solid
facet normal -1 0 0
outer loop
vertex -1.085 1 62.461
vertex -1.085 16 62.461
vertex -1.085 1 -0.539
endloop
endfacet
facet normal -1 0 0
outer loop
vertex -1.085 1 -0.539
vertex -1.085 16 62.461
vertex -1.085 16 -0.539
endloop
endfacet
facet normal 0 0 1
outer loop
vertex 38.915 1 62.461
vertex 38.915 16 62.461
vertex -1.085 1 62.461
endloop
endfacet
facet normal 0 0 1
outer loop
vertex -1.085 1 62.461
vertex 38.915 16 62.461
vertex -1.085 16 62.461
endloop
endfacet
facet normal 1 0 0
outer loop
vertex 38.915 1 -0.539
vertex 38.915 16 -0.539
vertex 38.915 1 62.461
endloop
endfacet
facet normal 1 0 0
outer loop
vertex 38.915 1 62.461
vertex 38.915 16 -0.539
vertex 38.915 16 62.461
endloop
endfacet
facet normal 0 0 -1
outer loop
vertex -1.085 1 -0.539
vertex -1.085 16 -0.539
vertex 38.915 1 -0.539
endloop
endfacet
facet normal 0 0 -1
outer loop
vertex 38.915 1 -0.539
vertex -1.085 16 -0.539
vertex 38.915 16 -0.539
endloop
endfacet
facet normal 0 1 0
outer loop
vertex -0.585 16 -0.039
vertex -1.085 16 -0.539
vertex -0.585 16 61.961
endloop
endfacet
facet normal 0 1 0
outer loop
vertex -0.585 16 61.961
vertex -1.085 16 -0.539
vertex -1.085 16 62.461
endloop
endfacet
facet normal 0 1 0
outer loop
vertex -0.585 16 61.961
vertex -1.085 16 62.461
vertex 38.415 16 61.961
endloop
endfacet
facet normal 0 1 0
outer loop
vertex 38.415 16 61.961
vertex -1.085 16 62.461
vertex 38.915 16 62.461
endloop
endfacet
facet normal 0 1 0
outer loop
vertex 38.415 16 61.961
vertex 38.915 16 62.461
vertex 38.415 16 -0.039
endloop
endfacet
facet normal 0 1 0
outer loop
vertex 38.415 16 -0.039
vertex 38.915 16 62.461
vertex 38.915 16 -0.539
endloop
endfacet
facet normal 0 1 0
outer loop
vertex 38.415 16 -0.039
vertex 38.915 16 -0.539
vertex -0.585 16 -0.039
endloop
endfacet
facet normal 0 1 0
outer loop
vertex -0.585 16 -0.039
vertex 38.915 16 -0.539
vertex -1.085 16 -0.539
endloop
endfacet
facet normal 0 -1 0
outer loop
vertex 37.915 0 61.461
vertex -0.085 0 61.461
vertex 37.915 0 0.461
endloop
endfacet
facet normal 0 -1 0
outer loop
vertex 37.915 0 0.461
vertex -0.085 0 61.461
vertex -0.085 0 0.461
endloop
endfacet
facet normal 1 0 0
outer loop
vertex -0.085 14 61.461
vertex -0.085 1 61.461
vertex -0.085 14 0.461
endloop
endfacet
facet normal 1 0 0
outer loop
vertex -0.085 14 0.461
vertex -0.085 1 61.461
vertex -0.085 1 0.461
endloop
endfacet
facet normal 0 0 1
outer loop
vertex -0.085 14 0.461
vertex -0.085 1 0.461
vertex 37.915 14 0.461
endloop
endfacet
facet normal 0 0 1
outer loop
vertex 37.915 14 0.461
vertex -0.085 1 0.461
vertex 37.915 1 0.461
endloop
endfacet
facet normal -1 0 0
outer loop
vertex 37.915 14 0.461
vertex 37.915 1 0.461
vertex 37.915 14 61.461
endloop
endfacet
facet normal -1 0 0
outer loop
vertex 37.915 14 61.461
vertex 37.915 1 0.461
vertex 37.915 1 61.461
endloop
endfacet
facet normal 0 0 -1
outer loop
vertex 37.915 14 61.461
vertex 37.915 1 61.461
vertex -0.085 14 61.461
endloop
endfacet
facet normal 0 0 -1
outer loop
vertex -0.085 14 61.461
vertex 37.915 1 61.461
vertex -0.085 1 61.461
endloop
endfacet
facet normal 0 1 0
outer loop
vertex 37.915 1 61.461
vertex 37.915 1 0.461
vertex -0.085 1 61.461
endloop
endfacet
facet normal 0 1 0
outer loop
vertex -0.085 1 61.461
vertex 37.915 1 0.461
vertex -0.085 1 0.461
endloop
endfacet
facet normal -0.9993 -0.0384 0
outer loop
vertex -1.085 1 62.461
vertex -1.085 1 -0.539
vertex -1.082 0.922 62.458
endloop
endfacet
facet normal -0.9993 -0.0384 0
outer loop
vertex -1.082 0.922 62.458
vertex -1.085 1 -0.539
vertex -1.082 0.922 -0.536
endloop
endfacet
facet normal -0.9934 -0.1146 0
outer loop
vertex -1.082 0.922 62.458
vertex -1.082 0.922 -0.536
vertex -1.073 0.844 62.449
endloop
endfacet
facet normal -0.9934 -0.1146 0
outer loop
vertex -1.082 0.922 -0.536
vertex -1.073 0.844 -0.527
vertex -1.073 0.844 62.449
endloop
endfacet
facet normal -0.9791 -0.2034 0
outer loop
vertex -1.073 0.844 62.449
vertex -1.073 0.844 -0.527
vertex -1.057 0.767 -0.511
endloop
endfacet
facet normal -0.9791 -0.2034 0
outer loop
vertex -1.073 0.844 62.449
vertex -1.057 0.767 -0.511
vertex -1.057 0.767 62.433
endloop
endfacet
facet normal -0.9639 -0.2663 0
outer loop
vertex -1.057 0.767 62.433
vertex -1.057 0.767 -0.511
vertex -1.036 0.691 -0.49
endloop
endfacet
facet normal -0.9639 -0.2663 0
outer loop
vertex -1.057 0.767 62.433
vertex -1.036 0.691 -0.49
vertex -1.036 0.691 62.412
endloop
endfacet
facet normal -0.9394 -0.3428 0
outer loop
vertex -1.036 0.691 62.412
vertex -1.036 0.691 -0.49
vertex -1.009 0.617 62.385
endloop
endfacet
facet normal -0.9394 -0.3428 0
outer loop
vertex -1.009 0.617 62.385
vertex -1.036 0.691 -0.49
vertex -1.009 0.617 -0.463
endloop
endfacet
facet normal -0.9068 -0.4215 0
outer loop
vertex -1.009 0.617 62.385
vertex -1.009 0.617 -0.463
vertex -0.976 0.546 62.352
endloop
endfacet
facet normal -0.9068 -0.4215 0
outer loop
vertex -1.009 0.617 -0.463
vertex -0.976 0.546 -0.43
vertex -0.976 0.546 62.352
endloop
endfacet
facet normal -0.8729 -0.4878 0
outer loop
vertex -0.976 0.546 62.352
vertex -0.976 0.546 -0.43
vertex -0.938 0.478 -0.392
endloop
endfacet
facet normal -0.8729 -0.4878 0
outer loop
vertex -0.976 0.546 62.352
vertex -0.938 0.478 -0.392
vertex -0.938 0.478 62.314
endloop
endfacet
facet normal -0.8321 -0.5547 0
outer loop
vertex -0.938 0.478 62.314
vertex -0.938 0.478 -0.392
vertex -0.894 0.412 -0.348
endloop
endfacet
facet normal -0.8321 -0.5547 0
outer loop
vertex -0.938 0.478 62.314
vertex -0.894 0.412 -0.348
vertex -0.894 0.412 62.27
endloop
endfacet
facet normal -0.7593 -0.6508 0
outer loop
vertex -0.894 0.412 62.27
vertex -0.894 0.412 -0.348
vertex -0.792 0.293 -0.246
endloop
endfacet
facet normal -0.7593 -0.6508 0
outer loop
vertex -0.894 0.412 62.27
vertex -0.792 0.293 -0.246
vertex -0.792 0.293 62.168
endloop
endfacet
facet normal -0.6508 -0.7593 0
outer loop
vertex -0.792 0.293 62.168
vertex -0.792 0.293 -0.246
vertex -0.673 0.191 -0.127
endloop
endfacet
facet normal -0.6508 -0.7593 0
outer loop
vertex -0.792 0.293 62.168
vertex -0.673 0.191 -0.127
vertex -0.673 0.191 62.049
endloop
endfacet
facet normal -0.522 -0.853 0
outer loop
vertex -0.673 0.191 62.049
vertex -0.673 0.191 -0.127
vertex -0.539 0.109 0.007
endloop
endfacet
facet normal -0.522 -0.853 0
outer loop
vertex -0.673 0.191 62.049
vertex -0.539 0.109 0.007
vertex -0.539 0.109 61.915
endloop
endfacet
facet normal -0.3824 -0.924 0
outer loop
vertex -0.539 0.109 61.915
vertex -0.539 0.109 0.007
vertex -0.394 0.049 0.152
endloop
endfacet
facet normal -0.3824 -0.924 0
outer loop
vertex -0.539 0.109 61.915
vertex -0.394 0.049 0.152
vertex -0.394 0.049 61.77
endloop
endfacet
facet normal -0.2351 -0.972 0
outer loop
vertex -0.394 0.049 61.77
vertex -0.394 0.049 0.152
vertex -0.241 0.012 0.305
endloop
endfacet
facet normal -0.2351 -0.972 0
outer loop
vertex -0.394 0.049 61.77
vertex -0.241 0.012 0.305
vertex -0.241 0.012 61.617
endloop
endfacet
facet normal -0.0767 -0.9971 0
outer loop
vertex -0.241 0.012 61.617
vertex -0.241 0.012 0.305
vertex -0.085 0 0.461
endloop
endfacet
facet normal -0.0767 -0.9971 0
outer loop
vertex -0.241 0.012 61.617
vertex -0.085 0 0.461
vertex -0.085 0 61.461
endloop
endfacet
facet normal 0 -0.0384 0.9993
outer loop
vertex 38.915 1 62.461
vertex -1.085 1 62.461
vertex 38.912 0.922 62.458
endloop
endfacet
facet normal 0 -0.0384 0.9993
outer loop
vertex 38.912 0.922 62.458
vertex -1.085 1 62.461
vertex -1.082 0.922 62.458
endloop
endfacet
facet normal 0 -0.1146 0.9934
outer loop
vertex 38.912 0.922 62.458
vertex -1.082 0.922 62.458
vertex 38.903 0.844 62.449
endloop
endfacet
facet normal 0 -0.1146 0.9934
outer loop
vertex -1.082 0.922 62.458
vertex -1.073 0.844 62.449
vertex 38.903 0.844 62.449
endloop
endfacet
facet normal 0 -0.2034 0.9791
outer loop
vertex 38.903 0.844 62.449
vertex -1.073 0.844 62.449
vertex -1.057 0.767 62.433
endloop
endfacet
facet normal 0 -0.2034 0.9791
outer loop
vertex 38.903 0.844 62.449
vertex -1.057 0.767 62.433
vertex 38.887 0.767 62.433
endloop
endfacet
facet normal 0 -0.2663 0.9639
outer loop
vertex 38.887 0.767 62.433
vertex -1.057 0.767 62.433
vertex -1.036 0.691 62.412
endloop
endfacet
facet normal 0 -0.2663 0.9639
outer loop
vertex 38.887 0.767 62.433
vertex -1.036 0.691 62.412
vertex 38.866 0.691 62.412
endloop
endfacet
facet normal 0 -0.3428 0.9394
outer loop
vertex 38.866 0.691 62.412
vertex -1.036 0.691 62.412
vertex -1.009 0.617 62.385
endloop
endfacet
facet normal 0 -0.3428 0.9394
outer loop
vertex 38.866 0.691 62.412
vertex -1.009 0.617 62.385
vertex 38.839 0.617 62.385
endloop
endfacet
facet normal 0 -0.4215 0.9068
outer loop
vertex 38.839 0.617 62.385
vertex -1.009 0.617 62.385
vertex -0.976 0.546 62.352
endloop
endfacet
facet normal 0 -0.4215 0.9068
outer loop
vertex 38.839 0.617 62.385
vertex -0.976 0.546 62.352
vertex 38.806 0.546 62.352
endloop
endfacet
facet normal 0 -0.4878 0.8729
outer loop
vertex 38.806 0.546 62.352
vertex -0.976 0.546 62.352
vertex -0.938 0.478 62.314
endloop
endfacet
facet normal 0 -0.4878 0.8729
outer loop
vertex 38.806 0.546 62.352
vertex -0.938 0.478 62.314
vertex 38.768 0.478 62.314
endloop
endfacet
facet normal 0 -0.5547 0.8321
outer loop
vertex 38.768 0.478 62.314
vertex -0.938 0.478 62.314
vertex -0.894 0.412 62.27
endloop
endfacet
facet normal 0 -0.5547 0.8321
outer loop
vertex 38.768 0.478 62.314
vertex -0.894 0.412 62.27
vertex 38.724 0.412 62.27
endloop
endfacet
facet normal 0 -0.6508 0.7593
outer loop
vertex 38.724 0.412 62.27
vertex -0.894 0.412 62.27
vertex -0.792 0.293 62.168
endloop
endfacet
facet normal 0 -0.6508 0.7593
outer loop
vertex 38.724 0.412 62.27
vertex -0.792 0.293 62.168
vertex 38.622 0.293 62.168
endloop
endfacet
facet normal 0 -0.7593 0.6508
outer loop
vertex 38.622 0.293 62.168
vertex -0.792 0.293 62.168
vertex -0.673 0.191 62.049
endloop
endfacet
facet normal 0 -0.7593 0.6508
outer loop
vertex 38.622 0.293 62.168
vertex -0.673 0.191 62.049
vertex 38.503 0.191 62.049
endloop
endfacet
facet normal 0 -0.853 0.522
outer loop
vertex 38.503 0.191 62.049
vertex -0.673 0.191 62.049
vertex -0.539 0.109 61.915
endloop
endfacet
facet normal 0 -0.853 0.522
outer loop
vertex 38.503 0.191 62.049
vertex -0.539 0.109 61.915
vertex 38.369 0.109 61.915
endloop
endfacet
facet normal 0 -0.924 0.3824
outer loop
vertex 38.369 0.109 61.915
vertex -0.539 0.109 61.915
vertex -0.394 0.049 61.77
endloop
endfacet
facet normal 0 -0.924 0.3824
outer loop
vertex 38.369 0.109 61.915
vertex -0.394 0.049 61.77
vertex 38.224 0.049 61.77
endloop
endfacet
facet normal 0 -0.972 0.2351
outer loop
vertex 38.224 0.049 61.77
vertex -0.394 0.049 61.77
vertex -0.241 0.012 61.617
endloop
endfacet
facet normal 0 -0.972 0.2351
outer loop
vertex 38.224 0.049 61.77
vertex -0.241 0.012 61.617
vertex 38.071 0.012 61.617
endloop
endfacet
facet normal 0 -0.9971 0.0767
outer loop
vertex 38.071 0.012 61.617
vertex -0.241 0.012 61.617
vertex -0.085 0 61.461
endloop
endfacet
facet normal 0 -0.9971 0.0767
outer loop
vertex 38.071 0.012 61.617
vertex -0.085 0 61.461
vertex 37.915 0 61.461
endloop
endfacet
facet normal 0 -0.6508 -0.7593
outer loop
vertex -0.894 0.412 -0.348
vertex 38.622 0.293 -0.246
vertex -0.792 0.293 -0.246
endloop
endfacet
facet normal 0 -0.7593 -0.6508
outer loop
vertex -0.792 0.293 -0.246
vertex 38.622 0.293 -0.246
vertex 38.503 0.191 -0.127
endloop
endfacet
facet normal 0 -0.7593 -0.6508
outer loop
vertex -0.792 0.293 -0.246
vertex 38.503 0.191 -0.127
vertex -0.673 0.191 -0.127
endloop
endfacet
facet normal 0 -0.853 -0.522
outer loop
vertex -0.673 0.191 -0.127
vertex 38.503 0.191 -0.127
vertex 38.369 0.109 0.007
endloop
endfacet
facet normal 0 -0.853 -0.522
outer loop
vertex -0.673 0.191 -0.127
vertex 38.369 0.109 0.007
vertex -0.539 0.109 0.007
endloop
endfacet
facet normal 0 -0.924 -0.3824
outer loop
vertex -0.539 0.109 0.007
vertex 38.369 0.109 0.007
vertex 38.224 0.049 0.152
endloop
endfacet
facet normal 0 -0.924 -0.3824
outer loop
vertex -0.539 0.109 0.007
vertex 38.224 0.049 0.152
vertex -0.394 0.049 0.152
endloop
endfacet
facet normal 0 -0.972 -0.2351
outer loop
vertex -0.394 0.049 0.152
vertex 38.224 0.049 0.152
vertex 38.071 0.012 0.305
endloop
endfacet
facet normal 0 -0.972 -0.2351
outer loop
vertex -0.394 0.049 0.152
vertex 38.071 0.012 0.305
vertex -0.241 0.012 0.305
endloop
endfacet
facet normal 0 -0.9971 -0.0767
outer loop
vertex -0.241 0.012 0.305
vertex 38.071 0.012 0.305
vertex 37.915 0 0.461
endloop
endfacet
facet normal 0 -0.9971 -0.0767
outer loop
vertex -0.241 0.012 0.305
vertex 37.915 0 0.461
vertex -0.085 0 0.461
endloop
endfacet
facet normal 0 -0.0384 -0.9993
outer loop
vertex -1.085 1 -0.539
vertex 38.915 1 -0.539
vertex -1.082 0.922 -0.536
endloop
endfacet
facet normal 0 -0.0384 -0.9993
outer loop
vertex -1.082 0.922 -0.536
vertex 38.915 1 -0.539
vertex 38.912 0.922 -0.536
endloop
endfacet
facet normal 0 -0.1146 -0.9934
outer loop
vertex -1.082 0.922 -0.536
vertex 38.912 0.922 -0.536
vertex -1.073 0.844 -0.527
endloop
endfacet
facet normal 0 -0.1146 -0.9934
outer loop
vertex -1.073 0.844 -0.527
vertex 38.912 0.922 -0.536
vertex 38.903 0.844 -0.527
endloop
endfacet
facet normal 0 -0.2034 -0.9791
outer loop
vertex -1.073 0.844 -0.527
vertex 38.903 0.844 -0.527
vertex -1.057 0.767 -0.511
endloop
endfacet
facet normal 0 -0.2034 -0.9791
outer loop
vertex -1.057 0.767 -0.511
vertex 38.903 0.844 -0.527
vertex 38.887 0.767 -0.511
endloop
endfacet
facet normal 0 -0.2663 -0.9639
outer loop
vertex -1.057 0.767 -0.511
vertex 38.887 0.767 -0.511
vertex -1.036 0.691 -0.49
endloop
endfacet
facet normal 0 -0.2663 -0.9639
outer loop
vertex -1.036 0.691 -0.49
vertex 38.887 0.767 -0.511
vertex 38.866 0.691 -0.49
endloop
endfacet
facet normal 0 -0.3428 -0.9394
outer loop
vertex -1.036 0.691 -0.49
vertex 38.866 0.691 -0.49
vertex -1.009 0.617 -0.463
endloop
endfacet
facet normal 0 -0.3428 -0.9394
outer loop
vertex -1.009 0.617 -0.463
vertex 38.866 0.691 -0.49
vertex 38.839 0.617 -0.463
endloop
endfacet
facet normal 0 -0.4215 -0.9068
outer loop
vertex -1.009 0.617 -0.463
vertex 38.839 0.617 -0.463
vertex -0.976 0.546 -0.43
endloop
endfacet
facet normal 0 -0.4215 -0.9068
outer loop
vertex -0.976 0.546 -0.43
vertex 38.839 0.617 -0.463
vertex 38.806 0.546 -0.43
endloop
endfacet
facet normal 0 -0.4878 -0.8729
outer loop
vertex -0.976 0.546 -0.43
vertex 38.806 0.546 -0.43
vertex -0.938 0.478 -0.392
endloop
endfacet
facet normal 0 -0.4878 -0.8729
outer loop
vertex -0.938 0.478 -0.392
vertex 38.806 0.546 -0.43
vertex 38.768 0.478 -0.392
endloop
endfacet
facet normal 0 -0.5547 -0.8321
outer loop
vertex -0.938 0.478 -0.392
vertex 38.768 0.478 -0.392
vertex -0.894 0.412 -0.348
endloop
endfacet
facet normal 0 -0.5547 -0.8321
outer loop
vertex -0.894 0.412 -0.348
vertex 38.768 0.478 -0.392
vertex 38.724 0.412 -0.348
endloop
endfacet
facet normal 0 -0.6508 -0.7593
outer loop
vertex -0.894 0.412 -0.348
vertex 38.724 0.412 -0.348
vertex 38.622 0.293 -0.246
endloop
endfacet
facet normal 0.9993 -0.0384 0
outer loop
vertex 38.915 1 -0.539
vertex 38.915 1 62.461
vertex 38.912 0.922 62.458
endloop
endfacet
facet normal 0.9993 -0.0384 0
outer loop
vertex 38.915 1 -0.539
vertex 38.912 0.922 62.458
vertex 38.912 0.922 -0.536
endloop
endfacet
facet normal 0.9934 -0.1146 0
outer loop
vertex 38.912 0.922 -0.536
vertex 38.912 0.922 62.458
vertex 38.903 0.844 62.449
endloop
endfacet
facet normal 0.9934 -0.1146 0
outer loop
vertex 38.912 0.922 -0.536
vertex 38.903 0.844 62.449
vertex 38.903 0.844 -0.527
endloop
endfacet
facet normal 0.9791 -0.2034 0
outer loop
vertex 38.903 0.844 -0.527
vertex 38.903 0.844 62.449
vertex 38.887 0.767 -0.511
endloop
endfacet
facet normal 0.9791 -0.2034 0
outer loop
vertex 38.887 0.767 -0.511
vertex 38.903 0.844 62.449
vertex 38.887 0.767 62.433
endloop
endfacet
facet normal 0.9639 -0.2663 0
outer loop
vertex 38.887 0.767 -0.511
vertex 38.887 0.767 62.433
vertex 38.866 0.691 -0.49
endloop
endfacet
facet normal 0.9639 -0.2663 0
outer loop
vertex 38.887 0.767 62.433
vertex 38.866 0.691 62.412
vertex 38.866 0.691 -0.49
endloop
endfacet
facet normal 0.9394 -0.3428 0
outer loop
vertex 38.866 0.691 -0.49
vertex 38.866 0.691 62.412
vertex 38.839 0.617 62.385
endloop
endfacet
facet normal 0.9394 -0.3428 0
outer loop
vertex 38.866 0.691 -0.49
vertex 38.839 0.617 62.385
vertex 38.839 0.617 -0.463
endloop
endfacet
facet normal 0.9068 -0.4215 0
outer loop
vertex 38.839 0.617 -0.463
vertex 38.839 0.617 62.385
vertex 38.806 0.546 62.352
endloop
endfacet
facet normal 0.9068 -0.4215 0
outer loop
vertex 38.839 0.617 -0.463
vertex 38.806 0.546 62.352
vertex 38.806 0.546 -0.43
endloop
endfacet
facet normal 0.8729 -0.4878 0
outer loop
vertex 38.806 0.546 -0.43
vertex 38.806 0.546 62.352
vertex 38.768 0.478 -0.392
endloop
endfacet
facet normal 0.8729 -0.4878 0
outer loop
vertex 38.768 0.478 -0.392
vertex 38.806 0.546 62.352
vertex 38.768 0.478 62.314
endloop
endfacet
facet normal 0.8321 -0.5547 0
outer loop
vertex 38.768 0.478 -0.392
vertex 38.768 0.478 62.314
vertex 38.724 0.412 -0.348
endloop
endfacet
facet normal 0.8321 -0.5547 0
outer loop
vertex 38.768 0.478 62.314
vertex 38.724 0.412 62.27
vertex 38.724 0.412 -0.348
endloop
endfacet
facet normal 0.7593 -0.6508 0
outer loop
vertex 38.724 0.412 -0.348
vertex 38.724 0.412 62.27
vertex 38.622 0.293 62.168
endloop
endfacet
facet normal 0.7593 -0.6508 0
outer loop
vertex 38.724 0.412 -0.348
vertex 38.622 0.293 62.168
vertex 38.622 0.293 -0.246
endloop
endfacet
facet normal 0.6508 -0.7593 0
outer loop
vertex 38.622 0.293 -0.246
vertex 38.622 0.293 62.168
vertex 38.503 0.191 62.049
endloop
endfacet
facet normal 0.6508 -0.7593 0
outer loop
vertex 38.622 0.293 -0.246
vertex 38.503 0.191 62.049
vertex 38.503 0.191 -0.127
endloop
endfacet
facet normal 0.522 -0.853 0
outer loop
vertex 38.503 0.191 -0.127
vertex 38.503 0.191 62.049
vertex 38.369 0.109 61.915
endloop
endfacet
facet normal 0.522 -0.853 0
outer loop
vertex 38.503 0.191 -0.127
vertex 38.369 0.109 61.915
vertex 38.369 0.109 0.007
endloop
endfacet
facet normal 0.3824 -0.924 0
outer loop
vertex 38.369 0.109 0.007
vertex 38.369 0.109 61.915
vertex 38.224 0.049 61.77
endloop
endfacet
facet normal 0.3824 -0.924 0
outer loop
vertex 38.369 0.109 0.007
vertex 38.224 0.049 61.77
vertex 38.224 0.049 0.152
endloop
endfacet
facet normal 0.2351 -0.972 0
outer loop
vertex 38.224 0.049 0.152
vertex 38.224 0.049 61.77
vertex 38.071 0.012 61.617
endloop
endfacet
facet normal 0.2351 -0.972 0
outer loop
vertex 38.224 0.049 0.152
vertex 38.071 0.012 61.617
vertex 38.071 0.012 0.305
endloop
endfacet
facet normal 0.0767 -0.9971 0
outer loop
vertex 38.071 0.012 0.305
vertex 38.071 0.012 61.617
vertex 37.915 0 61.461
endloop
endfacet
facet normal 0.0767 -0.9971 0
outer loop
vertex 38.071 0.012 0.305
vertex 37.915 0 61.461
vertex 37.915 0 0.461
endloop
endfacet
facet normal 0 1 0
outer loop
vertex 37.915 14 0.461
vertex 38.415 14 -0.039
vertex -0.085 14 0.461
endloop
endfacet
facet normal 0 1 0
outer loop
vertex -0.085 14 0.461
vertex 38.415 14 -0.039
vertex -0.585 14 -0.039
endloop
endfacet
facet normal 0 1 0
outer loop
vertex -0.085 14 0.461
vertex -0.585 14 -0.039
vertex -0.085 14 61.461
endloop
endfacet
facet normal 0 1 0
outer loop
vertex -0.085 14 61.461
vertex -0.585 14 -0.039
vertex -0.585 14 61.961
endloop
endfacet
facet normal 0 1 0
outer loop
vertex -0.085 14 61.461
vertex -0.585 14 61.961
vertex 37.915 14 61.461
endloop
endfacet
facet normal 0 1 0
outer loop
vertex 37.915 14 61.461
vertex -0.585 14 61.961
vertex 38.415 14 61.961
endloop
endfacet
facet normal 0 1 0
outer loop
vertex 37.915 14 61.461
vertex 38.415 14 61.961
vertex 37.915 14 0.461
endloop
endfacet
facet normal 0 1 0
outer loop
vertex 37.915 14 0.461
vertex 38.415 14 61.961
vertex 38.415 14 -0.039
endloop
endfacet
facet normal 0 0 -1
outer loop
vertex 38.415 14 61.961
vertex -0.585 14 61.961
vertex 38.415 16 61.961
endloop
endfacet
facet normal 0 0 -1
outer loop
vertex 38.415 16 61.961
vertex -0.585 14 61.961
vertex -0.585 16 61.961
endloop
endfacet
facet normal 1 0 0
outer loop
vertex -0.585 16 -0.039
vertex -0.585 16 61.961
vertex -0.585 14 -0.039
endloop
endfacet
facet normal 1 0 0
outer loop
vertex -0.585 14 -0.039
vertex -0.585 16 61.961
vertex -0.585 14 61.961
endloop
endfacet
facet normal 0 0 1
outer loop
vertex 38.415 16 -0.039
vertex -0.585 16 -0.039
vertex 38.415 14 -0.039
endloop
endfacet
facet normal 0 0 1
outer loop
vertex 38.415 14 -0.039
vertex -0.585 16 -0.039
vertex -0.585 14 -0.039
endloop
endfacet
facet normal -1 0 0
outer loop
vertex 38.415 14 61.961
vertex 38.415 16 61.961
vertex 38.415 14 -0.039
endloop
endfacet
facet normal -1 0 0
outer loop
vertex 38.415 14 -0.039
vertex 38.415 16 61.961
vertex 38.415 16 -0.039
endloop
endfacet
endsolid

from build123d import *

# Parameters (mm, degrees)
SKETCH_1_W          = 40
SKETCH_1_H          = 63
EXTRUDE_1_DEPTH     = 16
SKETCH_2_W          = 38
SKETCH_2_H          = 61
CUT_EXTRUDE_2_DEPTH = 15
FILLET_2_R          = 1
SKETCH_5_W          = 38
SKETCH_5_H          = 2
CUT_EXTRUDE_4_DEPTH = 0.5
SKETCH_6_W          = 61.5
SKETCH_6_H          = 2
CUT_EXTRUDE_5_DEPTH = 0.5
SKETCH_7_W          = 38.5
SKETCH_7_H          = 2
CUT_EXTRUDE_6_DEPTH = 0.5
SKETCH_8_W          = 62
SKETCH_8_H          = 2
CUT_EXTRUDE_7_DEPTH = 0.5


with BuildPart() as part:
    # Эскиз1 → Бобышка-Вытянуть1 (new body)
    with BuildSketch(Plane(origin=(0, 0, 0), x_dir=(1, 0, 0), z_dir=(0, 1, 0))):
        with Locations((18.915, -30.961)):
            Rectangle(SKETCH_1_W, SKETCH_1_H)
    extrude(amount=EXTRUDE_1_DEPTH)

    # Эскиз2 → Вырез-Вытянуть2 (cut)
    with BuildSketch(Plane(origin=(0, 16, 0), x_dir=(1, 0, 0), z_dir=(0, 1, 0))):
        with Locations((18.915, -30.961)):
            Rectangle(SKETCH_2_W, SKETCH_2_H)
    extrude(amount=-CUT_EXTRUDE_2_DEPTH, mode=Mode.SUBTRACT)

    # Скругление2
    fillet_2_edges = [part.edges().sort_by_distance(p)[0] for p in [
        (18.915, 0, -0.539),
        (38.915, 0, 30.961),
        (18.915, 0, 62.461),
        (-1.085, 0, 30.961),
    ]]
    fillet(fillet_2_edges, radius=FILLET_2_R)

    # Эскиз5 → Вырез-Вытянуть4 (cut)
    with BuildSketch(Plane(origin=(0, 0, 61.461), x_dir=(-1, 0, 0), z_dir=(0, 0, -1))):
        with Locations((-18.915, 15)):
            Rectangle(SKETCH_5_W, SKETCH_5_H)
    extrude(amount=-CUT_EXTRUDE_4_DEPTH, mode=Mode.SUBTRACT)

    # Эскиз6 → Вырез-Вытянуть5 (cut)
    with BuildSketch(Plane(origin=(-0.085, 0, 0), x_dir=(0, 0, -1), z_dir=(1, 0, 0))):
        with Locations((-31.211, 15)):
            Rectangle(SKETCH_6_W, SKETCH_6_H)
    extrude(amount=-CUT_EXTRUDE_5_DEPTH, mode=Mode.SUBTRACT)

    # Эскиз7 → Вырез-Вытянуть6 (cut)
    with BuildSketch(Plane.XY.offset(0.461)):
        with Locations((18.665, 15)):
            Rectangle(SKETCH_7_W, SKETCH_7_H)
    extrude(amount=-CUT_EXTRUDE_6_DEPTH, mode=Mode.SUBTRACT)

    # Эскиз8 → Вырез-Вытянуть7 (cut)
    with BuildSketch(Plane.ZY.offset(-37.915)):
        with Locations((30.961, 15)):
            Rectangle(SKETCH_8_W, SKETCH_8_H)
    extrude(amount=-CUT_EXTRUDE_7_DEPTH, mode=Mode.SUBTRACT)


solid = part.part
